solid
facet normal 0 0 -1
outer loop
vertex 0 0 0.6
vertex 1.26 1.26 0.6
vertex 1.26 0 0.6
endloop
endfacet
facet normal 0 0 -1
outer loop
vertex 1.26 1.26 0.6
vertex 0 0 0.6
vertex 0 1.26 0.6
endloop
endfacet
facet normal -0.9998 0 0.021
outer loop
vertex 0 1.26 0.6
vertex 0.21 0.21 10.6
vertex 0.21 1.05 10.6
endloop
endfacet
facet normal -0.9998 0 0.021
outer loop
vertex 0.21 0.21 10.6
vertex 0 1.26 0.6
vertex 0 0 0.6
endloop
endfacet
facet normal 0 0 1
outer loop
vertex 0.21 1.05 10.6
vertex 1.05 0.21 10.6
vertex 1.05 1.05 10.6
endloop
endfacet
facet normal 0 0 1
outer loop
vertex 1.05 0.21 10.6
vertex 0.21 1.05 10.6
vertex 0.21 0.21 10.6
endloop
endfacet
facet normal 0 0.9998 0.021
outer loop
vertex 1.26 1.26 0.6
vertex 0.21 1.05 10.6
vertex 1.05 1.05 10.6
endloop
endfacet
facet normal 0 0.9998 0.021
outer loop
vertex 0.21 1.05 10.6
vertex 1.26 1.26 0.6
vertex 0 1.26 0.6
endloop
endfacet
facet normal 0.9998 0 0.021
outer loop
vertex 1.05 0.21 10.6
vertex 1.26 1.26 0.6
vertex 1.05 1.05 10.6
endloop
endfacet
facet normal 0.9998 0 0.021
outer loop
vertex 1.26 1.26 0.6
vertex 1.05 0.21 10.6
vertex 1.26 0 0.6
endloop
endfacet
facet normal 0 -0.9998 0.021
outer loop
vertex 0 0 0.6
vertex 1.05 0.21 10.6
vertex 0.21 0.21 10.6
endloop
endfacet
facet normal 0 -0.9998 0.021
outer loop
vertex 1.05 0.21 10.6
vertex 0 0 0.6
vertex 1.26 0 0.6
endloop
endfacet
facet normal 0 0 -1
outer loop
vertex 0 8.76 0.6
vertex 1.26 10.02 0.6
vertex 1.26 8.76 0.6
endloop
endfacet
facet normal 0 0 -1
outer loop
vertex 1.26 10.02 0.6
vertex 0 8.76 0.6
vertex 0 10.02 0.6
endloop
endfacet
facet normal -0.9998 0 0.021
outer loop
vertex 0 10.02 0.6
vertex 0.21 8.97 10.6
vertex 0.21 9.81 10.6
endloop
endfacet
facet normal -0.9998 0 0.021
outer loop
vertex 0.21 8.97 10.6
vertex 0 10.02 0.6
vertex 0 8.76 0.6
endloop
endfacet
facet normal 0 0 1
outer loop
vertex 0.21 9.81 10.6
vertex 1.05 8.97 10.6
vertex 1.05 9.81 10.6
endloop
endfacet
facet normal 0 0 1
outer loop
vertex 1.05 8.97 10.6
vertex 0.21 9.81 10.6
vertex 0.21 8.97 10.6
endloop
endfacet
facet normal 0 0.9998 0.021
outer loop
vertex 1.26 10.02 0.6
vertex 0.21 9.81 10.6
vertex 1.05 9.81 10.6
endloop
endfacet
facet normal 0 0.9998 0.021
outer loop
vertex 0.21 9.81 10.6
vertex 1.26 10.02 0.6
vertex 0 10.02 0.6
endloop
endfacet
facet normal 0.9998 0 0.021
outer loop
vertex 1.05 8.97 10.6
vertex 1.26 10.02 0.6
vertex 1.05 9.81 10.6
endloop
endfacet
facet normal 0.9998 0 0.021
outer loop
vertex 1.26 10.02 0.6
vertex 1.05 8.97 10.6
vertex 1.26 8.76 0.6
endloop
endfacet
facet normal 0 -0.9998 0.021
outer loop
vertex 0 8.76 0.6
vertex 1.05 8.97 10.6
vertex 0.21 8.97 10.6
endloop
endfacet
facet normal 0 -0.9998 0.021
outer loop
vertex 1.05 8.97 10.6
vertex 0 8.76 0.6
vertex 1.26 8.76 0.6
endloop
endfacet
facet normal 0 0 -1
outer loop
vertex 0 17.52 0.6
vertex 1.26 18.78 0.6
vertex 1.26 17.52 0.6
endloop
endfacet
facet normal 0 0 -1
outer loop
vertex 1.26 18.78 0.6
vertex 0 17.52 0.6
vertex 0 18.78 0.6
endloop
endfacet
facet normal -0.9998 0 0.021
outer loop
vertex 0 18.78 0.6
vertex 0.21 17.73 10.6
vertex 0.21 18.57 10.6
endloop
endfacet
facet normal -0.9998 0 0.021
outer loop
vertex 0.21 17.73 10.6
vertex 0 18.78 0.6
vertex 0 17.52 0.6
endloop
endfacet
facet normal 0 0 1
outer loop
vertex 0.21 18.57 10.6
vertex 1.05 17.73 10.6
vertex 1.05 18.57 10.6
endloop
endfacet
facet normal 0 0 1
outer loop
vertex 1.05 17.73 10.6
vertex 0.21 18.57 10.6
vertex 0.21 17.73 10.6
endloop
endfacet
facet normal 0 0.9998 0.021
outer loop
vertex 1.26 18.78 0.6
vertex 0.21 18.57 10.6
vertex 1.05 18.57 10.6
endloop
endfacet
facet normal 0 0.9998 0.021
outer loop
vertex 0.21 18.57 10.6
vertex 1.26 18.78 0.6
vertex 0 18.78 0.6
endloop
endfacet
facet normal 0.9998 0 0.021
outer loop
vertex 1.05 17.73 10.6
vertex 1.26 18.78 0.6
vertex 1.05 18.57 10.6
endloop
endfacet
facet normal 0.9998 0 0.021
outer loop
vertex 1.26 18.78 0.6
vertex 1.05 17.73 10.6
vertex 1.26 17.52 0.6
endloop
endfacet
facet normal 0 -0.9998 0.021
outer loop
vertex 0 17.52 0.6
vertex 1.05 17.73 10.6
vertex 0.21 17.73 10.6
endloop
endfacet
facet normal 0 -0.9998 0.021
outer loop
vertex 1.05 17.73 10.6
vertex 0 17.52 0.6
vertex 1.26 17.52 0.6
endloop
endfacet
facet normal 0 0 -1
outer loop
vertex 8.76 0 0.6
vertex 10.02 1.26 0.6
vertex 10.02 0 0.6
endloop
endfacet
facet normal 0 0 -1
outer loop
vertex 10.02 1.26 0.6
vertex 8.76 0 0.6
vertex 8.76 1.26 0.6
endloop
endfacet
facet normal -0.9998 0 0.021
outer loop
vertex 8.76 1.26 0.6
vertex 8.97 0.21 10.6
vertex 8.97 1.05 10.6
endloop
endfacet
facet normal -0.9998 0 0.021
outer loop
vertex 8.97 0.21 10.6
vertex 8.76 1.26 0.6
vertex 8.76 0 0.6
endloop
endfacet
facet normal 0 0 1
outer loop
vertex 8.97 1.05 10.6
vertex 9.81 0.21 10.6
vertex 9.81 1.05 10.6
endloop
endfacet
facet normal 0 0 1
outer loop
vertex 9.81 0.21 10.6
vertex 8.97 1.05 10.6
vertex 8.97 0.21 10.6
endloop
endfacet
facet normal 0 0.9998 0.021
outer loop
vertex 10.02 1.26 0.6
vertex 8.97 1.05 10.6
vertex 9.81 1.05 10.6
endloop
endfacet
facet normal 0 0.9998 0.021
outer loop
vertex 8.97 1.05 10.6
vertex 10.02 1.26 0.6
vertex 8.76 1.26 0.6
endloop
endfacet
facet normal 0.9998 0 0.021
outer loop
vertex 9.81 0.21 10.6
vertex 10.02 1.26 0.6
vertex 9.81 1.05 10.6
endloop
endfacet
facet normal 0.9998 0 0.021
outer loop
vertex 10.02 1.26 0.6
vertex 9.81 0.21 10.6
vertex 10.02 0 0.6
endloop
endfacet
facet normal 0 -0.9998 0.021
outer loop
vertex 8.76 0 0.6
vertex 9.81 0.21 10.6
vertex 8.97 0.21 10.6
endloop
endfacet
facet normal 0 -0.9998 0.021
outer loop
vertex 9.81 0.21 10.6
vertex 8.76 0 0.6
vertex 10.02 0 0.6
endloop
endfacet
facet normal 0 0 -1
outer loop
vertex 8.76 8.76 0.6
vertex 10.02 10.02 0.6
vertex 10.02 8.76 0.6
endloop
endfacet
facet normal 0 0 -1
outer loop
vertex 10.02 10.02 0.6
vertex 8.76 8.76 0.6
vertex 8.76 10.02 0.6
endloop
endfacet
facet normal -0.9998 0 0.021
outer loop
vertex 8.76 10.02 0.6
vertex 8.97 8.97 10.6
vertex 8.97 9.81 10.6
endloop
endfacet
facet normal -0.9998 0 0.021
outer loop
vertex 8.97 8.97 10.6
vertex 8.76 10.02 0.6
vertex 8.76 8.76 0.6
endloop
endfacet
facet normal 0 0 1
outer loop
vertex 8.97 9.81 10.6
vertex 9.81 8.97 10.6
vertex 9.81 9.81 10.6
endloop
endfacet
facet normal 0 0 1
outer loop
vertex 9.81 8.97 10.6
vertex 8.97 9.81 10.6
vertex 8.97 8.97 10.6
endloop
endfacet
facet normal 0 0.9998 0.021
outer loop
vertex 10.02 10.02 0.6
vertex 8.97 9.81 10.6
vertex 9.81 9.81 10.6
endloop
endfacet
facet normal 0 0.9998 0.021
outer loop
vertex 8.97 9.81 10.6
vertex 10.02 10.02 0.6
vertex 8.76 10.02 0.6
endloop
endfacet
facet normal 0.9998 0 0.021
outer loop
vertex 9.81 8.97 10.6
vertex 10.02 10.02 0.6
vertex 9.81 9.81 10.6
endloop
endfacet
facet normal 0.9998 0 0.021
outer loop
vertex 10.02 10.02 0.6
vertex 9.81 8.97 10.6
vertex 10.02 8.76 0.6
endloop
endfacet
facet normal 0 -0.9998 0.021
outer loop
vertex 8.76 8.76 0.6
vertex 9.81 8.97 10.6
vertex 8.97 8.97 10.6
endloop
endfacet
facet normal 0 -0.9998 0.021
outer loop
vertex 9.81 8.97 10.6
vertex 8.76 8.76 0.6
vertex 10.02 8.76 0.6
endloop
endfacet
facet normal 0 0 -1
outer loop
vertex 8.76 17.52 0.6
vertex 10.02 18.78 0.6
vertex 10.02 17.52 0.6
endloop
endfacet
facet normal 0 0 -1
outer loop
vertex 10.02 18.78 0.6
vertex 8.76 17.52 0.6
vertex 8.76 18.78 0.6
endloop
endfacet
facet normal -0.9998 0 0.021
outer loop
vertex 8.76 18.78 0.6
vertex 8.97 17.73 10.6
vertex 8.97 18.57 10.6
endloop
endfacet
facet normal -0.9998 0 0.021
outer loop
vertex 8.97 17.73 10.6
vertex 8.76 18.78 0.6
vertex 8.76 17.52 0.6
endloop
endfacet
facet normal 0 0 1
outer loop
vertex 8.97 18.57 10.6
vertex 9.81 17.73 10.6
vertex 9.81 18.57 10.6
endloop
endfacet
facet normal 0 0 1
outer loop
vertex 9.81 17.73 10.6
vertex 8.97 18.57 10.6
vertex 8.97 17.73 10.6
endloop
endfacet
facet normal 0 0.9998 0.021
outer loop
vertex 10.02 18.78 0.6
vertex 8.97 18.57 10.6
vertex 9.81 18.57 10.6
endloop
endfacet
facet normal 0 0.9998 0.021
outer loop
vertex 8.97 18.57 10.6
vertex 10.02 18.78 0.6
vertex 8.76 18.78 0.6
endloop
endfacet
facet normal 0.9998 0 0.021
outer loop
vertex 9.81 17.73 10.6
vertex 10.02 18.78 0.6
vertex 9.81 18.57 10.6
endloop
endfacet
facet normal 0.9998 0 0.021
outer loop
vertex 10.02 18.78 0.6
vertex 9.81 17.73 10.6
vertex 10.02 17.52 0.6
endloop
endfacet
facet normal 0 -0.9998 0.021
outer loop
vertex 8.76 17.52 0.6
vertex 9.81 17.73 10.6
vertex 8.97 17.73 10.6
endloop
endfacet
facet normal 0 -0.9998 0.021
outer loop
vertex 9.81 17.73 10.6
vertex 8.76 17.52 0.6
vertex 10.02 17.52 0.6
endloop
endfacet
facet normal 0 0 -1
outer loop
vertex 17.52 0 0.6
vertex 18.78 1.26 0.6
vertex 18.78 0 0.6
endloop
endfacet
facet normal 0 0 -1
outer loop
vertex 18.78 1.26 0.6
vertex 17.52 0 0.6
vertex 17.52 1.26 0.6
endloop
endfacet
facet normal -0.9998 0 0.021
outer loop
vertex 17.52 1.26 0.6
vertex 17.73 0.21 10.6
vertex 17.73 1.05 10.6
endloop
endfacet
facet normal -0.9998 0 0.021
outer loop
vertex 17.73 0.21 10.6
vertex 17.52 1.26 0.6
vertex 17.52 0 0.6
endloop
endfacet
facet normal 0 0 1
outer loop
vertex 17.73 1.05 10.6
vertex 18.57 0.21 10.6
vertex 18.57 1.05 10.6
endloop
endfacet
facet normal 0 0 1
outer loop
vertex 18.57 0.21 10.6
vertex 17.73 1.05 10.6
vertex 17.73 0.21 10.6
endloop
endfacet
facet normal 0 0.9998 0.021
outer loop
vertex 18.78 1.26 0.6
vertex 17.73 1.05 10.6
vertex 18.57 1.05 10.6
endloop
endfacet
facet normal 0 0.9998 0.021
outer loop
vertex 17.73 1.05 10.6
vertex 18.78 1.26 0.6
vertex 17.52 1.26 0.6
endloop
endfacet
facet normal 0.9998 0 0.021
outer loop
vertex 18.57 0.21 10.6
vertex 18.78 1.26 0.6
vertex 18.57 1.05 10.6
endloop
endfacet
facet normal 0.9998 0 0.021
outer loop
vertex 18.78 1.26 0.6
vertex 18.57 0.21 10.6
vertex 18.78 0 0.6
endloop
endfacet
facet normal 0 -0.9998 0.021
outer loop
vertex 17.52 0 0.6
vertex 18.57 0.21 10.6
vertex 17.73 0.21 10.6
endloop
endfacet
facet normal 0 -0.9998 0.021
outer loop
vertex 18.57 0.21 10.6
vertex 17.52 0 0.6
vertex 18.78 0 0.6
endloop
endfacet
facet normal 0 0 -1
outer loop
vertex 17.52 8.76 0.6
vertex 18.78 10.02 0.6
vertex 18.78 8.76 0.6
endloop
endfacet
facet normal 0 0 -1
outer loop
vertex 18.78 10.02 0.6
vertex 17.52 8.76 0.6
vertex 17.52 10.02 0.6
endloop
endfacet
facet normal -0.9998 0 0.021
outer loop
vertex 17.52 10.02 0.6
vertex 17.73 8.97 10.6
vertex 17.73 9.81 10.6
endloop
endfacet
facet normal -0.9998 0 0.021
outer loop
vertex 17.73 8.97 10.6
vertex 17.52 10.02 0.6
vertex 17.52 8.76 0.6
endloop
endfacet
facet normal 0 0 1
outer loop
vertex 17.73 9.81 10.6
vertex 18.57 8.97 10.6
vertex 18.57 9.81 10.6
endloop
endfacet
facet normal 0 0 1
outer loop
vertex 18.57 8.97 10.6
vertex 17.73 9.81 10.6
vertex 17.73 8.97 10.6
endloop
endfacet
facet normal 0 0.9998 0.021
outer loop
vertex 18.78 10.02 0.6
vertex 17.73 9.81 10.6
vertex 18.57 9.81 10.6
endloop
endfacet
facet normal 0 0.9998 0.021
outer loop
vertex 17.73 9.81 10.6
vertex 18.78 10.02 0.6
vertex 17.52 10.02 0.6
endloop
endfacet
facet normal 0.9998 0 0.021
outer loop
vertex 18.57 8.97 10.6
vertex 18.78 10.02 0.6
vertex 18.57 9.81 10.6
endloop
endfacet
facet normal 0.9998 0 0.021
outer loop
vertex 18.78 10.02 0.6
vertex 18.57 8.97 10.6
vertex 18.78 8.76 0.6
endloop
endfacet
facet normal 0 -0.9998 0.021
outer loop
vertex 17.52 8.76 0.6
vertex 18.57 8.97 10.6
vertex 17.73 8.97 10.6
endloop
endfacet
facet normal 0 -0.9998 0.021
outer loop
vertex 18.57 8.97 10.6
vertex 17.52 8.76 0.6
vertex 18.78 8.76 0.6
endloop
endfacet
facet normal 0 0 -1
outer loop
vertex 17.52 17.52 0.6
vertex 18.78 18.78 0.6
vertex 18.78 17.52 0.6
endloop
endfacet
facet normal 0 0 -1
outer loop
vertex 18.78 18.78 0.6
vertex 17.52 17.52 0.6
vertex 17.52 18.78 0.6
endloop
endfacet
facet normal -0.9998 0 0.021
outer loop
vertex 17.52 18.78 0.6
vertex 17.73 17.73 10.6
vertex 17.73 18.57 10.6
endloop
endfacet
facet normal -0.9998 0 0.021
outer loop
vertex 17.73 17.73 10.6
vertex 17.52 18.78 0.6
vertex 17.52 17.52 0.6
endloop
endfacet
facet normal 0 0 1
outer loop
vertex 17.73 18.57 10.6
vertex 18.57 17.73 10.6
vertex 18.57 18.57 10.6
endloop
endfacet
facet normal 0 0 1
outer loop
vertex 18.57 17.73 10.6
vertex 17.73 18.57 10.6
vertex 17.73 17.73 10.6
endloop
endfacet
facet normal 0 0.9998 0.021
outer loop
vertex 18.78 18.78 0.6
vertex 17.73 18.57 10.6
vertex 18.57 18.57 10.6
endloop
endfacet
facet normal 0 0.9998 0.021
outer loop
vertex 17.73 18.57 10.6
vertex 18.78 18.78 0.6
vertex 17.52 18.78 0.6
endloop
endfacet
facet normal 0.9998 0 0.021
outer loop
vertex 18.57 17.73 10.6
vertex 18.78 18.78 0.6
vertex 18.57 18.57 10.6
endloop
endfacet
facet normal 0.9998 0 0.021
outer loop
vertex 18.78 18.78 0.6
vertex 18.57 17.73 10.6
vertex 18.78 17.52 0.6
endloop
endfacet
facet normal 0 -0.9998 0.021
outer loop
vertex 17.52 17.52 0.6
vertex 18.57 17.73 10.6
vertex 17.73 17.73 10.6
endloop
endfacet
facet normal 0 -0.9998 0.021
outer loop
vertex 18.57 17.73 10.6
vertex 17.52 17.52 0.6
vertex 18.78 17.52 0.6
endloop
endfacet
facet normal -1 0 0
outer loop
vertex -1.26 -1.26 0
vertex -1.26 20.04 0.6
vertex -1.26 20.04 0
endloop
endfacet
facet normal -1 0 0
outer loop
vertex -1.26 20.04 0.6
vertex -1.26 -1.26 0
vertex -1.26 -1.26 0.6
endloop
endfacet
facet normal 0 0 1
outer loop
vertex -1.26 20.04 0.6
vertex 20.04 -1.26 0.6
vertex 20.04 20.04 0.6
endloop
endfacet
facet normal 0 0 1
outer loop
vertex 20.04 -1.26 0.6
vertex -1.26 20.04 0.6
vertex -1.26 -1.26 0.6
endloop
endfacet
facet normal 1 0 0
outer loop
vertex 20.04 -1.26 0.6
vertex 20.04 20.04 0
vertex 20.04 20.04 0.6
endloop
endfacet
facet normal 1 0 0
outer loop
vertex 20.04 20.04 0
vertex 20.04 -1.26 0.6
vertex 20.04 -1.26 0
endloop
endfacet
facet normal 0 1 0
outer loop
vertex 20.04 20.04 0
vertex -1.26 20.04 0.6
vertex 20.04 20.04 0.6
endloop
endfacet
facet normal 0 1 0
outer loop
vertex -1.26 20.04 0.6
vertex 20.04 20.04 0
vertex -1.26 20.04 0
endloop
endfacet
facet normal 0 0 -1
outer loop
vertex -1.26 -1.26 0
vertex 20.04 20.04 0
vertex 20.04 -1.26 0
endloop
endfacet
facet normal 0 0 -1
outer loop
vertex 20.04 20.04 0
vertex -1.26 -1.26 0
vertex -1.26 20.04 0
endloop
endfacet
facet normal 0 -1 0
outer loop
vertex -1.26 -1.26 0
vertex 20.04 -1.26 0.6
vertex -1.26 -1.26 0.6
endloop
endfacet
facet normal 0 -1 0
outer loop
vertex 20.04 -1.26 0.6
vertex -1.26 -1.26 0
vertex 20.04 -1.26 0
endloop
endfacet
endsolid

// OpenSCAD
include <3d-printer-testing-suite.scad>

/* [Hidden] */
color_scheme = ["lightblue"];
test_type = "stringing";
